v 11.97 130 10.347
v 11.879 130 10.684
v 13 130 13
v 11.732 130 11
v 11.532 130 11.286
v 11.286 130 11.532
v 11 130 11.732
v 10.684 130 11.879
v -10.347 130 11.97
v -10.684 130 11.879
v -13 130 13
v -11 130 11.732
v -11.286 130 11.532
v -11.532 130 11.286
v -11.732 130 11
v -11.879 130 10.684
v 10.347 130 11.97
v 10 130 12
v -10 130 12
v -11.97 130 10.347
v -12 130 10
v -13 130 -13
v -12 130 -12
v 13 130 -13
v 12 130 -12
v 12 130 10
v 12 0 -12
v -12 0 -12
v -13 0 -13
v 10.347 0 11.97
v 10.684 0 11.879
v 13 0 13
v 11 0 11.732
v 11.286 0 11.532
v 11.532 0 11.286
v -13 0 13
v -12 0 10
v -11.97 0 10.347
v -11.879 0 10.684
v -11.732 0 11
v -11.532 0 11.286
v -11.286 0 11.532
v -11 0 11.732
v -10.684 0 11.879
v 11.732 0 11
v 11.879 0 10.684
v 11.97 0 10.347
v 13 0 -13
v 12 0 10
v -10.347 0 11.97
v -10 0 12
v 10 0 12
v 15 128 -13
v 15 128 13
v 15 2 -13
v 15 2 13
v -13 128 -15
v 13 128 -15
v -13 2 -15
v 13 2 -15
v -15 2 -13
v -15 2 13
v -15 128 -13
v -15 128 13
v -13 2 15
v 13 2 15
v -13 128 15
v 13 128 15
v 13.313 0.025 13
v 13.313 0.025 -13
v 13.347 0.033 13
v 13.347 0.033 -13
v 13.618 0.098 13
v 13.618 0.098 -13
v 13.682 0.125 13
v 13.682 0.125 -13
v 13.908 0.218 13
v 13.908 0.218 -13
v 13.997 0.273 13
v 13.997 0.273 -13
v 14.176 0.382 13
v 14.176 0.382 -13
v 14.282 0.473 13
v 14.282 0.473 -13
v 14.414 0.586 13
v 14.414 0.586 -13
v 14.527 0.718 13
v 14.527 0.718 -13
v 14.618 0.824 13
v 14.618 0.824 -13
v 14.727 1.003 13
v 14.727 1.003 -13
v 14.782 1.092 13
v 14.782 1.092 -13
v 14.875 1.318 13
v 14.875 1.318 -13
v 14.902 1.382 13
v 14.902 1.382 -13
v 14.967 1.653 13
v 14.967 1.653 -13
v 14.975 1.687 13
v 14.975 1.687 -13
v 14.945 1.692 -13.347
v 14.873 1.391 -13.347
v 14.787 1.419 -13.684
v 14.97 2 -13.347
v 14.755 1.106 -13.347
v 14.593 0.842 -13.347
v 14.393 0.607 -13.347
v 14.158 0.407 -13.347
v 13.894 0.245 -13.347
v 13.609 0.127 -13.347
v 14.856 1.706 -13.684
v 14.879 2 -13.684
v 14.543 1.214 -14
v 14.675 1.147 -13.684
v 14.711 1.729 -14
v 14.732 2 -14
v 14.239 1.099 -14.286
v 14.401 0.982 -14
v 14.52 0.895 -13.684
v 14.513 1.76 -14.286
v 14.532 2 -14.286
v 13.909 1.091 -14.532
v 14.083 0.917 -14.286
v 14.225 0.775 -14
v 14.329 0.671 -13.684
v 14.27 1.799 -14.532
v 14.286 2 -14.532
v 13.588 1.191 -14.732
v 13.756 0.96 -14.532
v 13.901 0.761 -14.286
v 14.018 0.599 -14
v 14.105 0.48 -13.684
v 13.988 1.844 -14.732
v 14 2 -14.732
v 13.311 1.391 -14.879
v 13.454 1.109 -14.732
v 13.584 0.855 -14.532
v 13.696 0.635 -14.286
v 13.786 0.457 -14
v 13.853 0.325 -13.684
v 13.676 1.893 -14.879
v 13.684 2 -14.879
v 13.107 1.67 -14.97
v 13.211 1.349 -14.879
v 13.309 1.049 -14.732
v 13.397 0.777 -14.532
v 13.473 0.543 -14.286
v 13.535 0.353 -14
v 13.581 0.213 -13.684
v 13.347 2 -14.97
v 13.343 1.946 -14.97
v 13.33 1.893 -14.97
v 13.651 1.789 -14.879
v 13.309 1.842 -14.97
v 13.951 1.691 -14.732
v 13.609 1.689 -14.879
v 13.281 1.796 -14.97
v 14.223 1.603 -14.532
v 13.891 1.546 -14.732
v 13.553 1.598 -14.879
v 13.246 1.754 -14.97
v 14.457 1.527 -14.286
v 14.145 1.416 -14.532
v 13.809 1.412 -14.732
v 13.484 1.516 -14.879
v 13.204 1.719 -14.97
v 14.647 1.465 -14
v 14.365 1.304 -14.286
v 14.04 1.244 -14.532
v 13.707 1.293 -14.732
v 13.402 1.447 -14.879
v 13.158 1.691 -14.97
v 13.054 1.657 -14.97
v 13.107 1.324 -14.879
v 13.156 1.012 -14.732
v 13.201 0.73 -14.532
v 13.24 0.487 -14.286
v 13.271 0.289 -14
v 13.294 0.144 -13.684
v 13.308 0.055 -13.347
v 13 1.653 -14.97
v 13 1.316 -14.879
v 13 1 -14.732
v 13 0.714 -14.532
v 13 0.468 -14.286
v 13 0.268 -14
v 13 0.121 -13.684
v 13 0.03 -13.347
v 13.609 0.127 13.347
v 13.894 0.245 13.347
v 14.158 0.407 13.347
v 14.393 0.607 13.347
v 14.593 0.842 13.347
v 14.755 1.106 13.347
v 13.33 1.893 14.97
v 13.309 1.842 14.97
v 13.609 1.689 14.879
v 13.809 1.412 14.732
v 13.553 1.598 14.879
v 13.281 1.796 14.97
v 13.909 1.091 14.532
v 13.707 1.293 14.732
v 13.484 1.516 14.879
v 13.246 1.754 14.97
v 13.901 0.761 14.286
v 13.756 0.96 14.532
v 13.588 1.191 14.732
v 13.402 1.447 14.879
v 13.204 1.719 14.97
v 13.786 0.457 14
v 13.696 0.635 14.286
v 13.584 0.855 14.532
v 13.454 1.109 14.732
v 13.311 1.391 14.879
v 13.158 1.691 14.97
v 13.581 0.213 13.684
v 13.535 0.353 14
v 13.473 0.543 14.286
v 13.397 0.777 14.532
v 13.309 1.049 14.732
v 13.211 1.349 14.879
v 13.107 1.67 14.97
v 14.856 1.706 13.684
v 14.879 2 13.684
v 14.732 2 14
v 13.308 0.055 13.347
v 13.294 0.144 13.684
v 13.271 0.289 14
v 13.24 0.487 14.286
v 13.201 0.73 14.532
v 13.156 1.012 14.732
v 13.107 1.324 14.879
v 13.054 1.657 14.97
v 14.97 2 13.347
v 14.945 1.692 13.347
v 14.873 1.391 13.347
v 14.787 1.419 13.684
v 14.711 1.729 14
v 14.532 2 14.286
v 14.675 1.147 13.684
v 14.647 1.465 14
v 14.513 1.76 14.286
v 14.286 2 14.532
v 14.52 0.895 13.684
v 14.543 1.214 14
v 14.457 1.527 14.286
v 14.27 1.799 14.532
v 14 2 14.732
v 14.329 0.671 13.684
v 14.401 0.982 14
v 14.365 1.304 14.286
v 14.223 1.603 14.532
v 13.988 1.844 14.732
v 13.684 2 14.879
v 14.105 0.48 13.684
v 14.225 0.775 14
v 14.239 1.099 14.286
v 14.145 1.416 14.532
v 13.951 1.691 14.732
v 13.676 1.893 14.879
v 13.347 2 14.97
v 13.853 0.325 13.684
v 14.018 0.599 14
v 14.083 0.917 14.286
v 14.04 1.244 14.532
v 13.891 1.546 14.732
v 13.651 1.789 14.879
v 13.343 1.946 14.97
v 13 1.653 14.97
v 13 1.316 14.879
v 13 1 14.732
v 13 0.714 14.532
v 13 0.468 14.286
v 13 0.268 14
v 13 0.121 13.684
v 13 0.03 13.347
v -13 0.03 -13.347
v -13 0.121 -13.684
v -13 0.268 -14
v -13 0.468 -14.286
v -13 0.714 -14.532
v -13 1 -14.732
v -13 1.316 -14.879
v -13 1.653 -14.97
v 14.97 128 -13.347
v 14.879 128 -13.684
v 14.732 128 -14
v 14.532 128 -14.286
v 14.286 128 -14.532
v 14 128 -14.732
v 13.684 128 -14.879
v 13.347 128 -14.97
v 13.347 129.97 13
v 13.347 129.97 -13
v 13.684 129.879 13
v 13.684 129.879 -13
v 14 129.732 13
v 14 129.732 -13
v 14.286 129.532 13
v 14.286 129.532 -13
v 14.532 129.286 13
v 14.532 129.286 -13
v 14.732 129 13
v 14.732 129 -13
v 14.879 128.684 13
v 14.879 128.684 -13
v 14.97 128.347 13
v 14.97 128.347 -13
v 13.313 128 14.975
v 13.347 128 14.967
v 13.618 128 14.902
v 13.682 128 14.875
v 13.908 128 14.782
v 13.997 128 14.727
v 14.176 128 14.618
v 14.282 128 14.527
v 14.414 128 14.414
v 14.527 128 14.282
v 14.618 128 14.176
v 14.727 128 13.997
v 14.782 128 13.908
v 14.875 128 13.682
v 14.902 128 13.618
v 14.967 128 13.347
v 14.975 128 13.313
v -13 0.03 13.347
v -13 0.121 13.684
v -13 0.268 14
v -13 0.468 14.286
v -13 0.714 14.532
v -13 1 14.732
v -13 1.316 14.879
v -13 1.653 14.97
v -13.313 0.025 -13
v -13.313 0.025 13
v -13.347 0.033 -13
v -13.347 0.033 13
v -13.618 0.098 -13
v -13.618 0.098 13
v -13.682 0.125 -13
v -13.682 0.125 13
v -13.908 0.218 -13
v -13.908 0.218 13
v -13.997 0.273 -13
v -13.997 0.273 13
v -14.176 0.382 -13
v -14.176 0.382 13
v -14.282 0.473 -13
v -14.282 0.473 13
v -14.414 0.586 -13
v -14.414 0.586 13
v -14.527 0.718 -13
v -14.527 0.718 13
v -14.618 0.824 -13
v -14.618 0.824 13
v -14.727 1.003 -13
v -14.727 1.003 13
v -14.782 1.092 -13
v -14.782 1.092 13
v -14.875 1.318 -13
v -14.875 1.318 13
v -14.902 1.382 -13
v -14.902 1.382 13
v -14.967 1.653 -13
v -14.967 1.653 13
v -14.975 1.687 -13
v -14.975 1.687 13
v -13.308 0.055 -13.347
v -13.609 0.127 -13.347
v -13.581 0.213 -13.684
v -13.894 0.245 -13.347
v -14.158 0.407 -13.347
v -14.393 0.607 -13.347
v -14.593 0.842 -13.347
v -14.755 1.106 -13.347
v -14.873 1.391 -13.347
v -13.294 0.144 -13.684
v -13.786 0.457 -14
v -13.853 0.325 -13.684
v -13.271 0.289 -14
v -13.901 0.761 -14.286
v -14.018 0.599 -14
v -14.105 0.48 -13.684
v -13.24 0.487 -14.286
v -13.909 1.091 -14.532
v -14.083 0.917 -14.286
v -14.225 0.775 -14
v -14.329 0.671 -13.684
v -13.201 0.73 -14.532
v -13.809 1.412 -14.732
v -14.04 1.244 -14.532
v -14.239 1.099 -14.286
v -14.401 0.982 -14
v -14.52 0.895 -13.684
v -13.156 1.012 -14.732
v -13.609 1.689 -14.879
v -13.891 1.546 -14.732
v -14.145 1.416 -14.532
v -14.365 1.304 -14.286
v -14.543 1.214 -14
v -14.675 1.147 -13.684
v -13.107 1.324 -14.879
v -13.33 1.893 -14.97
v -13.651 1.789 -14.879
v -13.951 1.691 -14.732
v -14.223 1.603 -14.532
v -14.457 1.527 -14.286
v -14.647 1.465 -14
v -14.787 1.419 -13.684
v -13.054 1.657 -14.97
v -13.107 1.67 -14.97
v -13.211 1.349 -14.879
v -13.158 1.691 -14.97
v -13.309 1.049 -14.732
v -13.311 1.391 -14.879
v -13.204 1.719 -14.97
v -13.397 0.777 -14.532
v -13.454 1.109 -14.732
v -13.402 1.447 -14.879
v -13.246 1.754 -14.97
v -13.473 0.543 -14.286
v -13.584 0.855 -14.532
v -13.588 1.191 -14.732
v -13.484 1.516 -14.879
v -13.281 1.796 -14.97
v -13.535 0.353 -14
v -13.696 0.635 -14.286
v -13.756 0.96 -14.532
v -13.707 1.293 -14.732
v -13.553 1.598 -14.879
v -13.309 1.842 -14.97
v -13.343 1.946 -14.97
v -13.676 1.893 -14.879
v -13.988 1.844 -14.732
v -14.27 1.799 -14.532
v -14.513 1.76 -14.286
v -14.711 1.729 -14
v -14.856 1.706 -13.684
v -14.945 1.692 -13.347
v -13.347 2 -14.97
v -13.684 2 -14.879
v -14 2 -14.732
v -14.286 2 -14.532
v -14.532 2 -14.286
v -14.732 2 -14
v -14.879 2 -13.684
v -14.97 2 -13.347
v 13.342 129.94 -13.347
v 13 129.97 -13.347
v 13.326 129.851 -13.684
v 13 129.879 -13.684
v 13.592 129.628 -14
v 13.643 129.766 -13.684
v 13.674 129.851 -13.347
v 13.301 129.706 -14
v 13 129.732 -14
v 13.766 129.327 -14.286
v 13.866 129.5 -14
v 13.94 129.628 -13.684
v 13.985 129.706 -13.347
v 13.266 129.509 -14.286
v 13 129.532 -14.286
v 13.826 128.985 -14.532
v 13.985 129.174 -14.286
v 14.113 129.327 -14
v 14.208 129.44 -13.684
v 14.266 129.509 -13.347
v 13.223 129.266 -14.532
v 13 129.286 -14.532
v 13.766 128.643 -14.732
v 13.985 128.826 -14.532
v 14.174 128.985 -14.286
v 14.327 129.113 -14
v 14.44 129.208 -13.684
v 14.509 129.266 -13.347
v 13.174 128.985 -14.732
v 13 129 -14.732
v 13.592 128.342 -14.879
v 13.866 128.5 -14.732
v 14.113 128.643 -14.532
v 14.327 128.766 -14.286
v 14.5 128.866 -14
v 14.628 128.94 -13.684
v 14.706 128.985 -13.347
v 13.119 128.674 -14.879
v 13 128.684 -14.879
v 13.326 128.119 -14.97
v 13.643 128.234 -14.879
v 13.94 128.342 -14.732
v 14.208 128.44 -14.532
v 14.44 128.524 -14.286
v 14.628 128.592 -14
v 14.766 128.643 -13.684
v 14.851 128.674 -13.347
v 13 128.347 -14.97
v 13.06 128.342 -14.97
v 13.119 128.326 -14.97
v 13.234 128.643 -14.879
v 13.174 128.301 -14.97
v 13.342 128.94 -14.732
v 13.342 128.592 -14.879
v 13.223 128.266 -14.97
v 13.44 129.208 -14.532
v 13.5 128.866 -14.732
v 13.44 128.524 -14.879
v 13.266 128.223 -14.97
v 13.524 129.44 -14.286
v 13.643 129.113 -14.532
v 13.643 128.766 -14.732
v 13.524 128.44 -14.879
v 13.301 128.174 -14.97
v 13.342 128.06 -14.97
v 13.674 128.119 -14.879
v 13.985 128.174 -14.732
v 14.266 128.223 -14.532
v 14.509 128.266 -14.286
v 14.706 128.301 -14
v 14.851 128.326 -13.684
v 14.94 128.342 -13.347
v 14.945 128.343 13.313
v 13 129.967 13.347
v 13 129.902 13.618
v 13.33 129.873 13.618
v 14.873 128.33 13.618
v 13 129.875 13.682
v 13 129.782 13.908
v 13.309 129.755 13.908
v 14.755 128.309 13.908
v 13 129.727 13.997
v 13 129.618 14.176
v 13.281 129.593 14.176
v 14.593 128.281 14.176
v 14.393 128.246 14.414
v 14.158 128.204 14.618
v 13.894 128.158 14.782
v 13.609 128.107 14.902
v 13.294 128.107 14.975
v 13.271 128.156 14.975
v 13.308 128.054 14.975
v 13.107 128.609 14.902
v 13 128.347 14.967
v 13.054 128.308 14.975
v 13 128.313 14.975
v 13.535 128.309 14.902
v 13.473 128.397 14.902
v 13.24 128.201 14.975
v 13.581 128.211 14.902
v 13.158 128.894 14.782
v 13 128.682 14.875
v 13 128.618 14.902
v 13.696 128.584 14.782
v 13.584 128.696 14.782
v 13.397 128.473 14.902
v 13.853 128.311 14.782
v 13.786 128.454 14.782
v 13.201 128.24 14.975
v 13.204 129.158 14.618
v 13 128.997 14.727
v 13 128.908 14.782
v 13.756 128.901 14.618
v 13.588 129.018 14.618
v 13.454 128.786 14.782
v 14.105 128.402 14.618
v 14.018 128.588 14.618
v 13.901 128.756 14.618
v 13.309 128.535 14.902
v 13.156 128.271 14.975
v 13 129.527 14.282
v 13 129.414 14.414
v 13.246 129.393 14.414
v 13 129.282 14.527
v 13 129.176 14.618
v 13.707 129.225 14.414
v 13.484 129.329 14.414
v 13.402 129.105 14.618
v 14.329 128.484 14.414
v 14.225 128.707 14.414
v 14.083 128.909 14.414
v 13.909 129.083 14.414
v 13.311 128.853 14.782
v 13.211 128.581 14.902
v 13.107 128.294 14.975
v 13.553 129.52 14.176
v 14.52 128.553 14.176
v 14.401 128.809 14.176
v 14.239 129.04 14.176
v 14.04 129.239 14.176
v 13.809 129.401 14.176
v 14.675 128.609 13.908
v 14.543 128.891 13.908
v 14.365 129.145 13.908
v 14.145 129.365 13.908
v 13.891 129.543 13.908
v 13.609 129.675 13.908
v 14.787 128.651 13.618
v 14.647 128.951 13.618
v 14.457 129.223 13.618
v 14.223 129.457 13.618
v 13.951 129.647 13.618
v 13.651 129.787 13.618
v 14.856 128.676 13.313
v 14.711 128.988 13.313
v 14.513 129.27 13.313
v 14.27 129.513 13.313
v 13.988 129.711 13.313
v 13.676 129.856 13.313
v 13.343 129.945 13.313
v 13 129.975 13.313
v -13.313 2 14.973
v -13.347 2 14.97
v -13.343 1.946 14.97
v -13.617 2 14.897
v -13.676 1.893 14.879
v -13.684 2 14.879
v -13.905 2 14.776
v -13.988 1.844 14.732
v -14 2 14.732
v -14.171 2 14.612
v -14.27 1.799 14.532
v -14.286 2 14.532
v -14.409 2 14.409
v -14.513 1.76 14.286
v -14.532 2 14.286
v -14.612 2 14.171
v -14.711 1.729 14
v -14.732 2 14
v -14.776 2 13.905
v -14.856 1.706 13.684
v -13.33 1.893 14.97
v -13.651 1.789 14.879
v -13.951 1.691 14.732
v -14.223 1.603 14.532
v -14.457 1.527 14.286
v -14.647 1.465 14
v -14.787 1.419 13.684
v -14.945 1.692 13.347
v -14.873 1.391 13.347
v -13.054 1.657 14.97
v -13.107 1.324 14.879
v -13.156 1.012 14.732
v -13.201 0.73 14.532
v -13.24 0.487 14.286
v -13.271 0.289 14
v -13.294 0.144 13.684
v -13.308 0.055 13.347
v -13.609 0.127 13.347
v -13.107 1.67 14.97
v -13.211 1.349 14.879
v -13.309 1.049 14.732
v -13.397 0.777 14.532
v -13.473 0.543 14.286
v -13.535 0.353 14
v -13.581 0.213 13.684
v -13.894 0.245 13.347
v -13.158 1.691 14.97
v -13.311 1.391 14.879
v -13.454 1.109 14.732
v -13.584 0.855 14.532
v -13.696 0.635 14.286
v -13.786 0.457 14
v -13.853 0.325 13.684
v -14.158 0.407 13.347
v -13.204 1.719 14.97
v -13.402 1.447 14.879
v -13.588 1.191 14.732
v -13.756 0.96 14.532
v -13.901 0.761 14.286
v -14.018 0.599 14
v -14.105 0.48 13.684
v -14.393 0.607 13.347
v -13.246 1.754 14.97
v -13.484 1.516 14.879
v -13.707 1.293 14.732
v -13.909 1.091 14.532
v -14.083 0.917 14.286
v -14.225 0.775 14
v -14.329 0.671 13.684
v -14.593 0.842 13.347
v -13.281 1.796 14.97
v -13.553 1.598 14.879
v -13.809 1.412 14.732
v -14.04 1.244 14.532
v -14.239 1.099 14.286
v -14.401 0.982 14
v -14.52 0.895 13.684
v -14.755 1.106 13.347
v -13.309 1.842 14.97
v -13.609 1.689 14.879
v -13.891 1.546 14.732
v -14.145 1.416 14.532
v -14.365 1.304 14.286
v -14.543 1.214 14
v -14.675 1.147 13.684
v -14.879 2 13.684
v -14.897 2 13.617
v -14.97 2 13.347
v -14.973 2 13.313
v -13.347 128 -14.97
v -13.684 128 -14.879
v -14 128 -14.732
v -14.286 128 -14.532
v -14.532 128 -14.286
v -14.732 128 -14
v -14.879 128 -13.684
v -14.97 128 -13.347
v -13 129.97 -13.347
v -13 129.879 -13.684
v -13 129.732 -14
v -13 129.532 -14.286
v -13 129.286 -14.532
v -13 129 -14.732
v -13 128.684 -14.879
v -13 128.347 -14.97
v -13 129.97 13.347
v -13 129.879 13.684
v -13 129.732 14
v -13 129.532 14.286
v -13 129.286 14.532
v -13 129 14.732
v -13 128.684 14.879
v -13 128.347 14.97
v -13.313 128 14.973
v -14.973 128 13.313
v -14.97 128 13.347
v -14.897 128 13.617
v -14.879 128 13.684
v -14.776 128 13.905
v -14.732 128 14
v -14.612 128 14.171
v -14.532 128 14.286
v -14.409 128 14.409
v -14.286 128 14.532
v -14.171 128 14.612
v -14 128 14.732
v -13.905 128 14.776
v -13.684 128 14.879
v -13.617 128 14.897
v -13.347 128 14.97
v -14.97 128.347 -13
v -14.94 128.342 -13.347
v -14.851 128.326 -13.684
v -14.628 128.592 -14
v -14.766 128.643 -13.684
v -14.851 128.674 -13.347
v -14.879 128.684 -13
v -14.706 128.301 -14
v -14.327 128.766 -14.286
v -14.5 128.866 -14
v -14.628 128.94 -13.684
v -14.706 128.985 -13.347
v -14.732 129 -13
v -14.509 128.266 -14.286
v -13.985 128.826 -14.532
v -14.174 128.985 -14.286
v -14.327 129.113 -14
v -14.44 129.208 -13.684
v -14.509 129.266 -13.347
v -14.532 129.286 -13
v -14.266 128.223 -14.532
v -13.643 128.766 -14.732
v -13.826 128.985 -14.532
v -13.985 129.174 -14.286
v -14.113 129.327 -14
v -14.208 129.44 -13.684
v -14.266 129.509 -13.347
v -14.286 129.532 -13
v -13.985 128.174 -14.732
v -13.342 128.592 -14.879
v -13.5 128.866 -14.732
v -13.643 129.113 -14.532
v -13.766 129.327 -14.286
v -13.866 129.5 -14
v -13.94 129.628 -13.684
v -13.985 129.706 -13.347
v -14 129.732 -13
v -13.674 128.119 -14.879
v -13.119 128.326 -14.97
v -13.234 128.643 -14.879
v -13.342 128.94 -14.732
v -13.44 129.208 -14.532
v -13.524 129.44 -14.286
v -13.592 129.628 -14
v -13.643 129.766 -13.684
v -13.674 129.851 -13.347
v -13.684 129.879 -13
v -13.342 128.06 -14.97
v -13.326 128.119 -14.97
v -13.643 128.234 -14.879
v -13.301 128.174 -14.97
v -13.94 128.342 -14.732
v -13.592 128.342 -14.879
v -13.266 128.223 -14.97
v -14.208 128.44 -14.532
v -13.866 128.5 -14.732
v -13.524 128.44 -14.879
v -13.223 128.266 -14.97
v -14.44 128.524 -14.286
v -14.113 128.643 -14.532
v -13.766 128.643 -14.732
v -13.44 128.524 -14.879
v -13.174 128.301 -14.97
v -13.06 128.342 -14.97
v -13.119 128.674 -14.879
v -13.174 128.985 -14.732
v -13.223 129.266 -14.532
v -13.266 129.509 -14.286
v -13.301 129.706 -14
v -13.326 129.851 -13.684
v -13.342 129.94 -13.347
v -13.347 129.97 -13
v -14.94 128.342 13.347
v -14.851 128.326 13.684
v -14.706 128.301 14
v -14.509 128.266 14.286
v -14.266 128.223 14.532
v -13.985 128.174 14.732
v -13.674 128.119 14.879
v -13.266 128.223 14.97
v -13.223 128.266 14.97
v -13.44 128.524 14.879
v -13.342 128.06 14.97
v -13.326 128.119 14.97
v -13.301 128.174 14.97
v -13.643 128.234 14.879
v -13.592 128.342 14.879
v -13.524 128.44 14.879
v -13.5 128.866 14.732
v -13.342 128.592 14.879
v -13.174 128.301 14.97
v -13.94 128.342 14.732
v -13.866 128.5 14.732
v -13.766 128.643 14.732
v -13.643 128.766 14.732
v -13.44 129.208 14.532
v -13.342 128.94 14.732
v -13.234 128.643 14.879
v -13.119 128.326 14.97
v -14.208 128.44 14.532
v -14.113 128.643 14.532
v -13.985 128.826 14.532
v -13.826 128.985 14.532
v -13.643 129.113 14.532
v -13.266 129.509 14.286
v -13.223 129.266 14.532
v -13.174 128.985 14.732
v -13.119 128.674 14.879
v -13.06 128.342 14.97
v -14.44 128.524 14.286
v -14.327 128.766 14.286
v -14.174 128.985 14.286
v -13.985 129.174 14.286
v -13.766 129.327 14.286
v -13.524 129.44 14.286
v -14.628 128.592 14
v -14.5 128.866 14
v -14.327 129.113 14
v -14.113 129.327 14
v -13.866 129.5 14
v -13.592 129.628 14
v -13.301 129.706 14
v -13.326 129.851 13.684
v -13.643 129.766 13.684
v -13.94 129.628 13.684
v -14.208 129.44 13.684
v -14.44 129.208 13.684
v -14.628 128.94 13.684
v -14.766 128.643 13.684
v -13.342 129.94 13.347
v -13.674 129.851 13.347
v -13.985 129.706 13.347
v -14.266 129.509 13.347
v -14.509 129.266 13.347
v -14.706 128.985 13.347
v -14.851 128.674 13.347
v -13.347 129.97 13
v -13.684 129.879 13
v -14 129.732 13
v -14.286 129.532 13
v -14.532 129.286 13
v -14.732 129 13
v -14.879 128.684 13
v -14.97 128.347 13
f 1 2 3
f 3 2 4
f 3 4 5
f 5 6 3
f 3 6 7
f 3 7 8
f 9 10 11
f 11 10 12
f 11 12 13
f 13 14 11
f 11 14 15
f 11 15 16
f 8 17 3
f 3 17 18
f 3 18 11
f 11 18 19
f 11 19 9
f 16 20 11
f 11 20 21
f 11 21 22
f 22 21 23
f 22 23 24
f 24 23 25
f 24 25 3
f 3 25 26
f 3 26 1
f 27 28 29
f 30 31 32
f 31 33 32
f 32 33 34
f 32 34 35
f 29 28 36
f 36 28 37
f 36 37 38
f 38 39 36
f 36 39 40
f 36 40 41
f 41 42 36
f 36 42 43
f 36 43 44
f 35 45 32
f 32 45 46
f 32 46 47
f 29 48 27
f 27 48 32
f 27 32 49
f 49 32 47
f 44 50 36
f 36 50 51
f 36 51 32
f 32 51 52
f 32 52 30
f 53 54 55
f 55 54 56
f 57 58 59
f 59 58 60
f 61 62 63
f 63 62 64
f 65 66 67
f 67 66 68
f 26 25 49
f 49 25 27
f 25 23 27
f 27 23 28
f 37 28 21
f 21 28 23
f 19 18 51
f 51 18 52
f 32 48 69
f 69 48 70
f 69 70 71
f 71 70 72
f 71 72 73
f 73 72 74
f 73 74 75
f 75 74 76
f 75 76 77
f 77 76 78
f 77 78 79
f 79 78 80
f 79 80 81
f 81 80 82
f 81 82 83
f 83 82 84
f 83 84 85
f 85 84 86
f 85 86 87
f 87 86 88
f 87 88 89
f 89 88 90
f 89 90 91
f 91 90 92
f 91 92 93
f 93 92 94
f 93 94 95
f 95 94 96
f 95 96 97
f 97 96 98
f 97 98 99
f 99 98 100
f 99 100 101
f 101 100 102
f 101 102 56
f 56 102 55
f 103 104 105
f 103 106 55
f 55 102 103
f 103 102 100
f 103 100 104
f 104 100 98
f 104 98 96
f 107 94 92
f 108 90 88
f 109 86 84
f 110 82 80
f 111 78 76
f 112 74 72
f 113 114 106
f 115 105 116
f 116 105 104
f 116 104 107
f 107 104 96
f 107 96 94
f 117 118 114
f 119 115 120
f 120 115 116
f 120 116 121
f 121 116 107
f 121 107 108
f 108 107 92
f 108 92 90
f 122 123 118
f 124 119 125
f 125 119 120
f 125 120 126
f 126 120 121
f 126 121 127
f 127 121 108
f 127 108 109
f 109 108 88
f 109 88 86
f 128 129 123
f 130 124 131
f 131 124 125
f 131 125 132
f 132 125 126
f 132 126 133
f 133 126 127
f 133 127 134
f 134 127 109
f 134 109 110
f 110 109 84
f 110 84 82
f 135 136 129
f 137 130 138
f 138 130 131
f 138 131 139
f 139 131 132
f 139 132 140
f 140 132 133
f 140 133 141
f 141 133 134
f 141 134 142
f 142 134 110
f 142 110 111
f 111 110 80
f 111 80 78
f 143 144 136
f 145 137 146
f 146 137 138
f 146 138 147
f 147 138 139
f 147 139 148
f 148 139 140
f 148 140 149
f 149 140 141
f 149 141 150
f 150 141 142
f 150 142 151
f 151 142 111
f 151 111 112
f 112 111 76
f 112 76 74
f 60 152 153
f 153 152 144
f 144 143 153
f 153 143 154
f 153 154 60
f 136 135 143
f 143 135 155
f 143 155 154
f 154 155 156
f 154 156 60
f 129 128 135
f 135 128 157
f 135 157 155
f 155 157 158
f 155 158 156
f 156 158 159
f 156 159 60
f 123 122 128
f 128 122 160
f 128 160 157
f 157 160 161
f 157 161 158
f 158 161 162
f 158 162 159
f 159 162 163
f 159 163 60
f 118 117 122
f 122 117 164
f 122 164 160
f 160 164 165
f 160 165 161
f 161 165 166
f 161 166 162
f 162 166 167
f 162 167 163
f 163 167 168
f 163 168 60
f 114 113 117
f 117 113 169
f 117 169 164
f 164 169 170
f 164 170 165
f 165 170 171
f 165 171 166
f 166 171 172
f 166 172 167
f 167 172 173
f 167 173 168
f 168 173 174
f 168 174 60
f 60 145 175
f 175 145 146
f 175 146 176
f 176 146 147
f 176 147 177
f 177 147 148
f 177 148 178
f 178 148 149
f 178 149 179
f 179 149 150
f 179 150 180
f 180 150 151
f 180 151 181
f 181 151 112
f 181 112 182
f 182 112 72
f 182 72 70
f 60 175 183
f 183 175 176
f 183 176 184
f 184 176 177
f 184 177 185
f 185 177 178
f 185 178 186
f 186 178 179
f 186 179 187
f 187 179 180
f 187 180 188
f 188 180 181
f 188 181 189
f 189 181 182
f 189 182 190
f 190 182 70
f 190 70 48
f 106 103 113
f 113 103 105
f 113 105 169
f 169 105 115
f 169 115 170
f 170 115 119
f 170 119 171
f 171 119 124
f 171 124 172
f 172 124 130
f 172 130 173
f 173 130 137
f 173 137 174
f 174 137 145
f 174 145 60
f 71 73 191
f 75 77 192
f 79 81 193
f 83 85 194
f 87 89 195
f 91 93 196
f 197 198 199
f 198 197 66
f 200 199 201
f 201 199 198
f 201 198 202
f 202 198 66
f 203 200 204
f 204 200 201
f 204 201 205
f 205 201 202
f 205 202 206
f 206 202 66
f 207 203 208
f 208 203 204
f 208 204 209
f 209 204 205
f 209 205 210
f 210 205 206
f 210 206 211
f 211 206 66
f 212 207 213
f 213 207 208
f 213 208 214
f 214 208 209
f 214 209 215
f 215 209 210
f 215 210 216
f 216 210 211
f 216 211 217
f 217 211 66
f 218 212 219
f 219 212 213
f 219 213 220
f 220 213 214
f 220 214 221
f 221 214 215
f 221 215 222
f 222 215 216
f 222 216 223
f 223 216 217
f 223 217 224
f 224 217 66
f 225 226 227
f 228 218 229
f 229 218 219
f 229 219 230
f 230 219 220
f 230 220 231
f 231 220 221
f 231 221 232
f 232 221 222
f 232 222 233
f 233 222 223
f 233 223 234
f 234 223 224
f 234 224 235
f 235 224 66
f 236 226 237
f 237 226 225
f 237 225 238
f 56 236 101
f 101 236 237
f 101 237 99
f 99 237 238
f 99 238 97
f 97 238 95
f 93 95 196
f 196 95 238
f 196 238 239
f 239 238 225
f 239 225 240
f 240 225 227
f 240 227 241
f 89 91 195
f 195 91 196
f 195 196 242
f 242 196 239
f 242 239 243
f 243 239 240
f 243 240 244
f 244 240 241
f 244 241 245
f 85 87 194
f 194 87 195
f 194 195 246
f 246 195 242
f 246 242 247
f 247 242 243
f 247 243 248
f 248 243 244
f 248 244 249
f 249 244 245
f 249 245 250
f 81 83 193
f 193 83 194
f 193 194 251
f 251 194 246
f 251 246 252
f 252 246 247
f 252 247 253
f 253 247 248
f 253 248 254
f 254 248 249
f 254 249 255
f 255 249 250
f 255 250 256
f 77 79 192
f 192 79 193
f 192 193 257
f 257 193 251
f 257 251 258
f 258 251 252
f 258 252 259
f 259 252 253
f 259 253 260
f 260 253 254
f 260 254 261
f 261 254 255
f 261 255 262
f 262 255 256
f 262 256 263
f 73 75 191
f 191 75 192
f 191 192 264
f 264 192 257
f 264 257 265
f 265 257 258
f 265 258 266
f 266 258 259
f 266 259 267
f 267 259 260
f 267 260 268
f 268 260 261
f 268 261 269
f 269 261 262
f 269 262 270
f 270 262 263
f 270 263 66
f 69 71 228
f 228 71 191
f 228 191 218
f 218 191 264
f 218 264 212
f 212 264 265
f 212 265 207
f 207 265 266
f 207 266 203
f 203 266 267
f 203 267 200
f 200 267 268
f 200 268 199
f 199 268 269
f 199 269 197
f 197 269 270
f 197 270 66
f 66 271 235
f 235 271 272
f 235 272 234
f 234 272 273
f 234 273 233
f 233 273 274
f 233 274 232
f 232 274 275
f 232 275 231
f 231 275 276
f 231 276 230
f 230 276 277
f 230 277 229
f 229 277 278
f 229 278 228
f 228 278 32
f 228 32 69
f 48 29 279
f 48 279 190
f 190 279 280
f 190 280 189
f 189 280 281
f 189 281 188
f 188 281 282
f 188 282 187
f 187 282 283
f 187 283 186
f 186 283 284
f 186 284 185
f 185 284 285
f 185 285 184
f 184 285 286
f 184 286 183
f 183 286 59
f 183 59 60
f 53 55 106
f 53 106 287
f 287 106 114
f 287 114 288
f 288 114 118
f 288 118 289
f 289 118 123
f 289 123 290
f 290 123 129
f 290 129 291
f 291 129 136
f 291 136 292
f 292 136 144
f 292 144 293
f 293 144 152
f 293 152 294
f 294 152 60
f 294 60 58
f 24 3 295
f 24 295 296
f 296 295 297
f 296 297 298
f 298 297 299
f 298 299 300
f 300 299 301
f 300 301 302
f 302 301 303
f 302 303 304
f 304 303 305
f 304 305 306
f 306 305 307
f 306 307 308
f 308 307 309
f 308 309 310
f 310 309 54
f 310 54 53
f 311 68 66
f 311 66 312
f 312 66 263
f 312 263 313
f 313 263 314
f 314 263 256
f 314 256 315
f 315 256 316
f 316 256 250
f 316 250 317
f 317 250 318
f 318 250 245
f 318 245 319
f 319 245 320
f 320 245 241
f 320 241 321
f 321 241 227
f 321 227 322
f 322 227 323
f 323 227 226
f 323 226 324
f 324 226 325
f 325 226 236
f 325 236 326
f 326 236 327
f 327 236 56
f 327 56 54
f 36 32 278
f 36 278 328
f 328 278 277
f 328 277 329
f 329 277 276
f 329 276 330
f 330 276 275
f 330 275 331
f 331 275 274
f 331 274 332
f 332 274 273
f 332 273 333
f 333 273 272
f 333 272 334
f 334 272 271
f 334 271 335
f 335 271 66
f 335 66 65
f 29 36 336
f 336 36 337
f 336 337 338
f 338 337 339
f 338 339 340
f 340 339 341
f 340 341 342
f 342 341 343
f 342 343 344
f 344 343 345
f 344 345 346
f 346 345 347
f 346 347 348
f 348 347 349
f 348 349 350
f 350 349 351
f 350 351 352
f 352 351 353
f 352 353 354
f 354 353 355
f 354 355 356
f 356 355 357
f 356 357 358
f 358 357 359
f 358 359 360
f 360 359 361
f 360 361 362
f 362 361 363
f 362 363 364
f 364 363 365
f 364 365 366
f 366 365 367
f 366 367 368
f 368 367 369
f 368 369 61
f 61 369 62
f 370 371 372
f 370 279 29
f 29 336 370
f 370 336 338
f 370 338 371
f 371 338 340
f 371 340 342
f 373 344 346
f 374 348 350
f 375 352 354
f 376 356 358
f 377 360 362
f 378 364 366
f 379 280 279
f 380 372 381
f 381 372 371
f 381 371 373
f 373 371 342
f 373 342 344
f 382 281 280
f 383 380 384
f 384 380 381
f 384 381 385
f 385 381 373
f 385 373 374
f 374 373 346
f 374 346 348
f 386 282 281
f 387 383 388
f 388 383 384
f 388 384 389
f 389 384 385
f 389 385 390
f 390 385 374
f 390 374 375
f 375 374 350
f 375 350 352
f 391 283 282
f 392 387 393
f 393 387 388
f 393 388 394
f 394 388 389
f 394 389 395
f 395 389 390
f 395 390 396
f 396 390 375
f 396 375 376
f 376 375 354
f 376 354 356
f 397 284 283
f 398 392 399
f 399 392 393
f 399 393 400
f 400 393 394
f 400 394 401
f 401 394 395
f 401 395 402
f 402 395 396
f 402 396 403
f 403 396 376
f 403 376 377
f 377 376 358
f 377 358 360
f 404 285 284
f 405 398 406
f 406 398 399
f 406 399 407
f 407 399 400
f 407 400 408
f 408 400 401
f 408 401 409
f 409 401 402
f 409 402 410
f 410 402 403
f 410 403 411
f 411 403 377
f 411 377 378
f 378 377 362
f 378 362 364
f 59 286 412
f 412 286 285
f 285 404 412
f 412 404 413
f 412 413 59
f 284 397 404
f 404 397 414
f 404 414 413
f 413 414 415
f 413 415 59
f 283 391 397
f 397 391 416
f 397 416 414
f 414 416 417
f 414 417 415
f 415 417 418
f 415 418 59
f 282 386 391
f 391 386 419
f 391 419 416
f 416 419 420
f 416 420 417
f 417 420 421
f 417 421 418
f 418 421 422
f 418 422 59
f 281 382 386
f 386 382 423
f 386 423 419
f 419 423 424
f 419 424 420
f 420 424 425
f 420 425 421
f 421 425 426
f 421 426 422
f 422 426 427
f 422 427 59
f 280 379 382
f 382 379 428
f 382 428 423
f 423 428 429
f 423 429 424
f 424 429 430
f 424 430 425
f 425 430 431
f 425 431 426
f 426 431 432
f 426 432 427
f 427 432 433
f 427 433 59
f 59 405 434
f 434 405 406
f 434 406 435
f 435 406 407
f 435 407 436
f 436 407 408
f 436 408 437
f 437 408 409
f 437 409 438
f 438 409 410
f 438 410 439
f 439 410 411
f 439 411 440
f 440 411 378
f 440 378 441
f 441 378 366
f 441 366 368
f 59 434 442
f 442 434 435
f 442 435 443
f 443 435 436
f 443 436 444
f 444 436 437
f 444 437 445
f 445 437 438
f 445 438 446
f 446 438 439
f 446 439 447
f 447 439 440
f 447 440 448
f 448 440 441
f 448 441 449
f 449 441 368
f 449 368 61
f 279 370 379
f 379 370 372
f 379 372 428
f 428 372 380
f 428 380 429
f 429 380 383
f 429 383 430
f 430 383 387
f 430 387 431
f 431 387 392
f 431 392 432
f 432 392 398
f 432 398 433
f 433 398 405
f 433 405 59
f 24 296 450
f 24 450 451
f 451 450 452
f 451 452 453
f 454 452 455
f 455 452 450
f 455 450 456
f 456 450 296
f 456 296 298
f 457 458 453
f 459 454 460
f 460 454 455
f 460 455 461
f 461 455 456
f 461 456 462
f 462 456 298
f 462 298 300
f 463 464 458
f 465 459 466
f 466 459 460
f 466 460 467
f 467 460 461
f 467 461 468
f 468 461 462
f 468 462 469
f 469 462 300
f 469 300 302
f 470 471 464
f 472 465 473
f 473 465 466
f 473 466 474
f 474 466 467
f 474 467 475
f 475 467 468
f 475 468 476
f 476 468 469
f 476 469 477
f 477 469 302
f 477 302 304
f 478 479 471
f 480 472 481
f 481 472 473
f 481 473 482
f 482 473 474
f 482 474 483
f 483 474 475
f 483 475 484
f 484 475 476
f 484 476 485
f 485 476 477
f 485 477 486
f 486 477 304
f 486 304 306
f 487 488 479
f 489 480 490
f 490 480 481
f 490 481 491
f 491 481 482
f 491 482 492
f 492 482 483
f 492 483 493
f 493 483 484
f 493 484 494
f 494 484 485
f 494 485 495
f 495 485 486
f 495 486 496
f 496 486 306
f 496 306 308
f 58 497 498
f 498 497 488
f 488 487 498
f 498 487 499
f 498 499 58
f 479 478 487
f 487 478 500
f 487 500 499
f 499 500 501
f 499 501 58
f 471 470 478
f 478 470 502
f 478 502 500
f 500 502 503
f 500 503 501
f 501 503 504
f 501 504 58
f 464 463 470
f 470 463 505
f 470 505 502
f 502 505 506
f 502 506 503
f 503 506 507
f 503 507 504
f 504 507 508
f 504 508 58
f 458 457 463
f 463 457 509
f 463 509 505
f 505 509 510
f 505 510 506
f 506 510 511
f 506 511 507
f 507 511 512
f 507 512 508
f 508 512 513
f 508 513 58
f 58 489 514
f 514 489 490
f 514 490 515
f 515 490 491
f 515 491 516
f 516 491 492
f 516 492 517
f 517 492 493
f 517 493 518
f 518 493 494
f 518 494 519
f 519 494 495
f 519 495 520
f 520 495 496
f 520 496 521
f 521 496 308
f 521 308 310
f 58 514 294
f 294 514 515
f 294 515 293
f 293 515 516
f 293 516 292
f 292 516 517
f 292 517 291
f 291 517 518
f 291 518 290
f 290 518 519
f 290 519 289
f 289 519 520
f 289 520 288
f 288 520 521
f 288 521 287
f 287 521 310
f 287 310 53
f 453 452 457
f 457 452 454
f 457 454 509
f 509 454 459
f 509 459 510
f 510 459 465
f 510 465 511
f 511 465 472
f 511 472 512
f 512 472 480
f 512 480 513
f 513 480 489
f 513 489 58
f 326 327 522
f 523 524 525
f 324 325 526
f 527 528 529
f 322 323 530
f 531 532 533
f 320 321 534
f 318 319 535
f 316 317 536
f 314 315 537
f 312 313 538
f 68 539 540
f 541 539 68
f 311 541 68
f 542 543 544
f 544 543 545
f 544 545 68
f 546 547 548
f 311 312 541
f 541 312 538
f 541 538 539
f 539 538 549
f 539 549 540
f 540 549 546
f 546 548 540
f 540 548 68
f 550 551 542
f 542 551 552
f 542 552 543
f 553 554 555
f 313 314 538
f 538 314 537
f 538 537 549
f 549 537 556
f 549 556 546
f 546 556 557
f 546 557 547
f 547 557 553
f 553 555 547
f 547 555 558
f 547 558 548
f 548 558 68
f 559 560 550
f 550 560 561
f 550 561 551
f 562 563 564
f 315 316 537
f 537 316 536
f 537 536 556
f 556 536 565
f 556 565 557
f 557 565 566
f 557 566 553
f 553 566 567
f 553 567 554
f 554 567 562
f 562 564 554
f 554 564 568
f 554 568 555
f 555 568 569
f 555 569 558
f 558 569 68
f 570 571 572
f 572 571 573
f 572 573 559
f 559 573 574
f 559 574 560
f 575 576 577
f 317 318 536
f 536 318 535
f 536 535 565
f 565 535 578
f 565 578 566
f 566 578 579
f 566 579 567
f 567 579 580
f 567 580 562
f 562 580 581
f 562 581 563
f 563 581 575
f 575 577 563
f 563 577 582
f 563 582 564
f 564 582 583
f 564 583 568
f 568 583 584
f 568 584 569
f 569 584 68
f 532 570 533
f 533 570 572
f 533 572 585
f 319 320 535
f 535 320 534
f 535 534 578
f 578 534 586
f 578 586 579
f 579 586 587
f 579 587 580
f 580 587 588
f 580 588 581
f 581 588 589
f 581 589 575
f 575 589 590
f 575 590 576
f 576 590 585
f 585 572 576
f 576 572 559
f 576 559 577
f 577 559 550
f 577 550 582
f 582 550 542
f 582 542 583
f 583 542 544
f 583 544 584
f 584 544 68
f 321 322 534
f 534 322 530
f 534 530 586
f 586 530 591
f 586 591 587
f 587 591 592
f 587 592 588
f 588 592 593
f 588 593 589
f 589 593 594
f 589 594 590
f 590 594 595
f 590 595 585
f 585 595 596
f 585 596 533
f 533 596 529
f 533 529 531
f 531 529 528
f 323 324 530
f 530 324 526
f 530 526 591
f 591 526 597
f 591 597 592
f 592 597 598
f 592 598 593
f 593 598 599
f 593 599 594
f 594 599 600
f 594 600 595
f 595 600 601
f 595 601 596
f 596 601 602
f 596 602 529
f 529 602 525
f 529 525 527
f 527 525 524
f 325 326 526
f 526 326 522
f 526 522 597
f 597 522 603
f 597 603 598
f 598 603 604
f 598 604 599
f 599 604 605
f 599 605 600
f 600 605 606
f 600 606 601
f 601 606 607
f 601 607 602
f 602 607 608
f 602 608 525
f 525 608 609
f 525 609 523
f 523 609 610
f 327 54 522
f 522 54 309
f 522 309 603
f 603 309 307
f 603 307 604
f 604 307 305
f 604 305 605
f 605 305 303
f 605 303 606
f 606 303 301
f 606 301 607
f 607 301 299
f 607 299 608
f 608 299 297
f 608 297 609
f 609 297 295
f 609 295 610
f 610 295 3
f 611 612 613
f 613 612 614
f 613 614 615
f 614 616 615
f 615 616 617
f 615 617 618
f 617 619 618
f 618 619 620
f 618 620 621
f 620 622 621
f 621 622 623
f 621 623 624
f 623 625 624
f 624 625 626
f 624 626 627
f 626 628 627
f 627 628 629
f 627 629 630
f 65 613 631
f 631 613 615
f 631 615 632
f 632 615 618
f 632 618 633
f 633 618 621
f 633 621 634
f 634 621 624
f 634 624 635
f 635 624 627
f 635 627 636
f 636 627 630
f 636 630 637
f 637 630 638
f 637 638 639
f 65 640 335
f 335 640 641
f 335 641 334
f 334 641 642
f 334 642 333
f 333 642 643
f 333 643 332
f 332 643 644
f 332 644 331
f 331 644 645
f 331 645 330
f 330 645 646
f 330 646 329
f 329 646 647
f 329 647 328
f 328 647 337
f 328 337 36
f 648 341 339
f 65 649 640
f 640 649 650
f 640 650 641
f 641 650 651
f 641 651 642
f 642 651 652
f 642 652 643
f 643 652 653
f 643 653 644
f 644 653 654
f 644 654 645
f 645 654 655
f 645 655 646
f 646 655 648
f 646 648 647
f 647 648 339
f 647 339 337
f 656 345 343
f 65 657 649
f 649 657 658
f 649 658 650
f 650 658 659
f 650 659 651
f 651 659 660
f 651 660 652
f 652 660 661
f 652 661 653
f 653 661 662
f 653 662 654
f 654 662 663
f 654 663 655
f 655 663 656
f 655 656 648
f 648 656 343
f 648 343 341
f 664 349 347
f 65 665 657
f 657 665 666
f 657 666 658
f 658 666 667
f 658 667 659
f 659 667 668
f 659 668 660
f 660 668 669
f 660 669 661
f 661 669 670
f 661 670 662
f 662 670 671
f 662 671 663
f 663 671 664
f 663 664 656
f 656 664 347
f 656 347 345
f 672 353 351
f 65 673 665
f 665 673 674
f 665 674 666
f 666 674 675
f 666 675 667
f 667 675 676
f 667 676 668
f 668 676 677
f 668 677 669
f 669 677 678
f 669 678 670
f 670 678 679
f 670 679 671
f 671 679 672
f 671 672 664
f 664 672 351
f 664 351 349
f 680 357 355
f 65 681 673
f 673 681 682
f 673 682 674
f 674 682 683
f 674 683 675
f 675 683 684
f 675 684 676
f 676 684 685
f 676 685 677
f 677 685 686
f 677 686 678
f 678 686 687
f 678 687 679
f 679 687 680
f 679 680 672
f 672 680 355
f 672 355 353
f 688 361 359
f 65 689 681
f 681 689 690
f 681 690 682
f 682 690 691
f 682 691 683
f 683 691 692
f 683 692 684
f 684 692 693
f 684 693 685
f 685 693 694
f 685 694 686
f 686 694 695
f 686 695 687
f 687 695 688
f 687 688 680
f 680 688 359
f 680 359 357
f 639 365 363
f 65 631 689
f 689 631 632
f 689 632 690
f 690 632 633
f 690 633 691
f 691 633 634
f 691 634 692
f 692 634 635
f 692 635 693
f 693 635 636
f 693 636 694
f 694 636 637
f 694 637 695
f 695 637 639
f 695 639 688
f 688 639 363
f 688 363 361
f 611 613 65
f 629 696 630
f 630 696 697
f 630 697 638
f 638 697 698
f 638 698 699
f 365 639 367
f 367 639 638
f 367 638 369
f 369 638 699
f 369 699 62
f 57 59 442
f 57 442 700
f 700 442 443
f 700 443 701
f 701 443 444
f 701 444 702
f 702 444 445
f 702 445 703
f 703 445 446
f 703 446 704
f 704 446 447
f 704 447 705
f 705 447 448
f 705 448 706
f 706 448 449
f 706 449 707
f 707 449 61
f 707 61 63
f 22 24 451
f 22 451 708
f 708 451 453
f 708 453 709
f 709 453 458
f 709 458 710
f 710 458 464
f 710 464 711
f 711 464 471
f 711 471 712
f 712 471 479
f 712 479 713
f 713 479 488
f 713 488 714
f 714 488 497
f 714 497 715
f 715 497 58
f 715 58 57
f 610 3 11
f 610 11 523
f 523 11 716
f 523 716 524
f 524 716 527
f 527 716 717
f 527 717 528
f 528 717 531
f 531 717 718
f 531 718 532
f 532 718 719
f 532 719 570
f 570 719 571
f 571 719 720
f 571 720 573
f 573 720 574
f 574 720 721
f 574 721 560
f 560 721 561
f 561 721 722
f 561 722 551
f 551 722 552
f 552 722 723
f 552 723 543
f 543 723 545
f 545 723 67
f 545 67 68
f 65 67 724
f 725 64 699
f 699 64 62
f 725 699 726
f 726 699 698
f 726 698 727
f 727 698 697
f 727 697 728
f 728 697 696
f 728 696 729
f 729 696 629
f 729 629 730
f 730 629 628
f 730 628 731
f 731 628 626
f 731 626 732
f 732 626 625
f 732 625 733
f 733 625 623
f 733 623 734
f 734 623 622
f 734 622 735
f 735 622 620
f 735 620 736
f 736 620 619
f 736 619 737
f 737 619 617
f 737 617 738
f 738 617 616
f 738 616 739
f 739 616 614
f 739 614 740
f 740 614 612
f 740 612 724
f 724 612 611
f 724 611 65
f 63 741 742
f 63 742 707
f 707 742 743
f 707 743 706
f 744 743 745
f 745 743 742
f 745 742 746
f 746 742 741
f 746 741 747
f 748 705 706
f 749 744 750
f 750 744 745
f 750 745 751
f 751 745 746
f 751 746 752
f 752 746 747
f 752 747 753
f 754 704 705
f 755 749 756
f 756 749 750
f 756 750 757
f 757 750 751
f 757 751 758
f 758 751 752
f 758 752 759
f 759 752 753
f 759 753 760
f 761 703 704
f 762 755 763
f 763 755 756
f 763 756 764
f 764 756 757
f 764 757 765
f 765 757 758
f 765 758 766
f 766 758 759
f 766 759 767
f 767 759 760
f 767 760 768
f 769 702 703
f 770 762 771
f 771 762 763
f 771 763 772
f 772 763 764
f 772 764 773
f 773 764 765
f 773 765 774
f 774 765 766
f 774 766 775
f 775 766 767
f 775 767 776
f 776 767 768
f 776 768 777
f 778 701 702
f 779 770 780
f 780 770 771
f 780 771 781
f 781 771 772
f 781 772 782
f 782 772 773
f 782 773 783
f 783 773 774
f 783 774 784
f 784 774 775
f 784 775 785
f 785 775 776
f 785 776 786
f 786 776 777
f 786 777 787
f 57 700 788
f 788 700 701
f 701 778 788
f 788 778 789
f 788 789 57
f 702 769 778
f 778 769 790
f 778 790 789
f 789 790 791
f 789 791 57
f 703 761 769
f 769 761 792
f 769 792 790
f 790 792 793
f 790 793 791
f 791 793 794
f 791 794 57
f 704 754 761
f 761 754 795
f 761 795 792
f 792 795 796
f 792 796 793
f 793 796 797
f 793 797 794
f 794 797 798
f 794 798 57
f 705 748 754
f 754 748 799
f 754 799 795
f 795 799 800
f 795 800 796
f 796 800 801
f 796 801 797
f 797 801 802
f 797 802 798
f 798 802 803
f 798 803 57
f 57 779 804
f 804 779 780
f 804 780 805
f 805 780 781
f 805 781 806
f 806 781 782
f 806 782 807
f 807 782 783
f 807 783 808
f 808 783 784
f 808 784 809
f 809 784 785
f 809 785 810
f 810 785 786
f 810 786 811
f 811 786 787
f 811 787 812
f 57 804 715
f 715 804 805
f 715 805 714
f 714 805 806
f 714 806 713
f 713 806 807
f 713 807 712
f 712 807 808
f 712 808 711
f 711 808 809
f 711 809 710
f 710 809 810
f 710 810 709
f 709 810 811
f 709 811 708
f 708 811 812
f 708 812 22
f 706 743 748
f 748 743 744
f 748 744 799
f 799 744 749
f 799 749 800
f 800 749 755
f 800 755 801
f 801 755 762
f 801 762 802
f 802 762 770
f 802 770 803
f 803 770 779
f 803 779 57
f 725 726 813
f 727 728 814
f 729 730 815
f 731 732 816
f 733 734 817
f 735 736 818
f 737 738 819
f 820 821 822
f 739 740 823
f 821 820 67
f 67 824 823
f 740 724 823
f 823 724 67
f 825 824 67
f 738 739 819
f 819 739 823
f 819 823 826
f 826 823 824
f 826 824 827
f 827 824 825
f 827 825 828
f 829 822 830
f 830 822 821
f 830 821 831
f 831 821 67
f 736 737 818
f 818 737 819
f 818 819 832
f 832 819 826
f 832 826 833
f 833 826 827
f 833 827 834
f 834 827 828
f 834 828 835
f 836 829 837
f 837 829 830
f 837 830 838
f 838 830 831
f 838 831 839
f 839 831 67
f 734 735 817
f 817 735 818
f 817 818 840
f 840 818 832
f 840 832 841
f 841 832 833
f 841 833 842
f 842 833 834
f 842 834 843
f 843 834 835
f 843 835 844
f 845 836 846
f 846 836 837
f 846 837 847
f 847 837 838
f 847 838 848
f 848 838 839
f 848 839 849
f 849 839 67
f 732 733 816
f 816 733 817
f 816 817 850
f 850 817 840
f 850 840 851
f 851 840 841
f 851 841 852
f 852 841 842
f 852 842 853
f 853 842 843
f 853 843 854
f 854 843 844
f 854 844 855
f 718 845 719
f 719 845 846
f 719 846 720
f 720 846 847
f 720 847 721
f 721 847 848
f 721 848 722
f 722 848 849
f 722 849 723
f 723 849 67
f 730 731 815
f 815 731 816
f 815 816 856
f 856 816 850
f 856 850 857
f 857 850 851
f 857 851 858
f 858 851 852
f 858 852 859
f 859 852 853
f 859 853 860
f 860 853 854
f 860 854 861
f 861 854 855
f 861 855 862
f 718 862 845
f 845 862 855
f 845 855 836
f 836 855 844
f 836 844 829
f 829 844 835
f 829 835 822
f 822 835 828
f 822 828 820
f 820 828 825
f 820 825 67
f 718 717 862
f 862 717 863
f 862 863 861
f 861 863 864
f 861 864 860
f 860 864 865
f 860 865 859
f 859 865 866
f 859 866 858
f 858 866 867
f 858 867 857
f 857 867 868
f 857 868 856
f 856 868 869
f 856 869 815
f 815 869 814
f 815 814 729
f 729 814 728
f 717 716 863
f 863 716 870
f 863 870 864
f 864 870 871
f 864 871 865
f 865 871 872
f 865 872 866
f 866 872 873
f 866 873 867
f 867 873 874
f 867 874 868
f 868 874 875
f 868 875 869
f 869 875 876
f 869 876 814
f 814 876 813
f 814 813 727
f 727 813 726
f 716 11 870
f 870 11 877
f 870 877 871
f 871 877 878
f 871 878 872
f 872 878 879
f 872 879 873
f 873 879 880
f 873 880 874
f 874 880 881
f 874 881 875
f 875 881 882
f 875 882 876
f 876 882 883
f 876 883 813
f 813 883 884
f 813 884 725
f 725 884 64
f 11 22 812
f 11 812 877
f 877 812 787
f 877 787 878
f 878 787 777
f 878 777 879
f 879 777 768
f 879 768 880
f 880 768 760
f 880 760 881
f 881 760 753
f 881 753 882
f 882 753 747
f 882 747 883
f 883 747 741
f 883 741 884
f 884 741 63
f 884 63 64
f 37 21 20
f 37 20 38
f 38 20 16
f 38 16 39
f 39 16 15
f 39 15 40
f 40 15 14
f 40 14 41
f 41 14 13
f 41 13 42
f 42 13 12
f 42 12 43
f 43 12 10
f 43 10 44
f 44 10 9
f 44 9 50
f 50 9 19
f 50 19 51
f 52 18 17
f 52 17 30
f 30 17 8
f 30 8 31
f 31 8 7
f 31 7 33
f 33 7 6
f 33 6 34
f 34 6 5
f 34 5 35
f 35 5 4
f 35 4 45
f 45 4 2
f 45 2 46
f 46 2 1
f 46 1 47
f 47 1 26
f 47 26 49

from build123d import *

# Parameters (mm, degrees)
CROQUIS1_W              = 30
CROQUIS1_H              = 30
CROQUIS1_W_2            = 24
CROQUIS1_H_2            = 24
SALIENTE_EXTRUIR1_DEPTH = 130
REDONDEO2_R             = 2


with BuildPart() as part:
    # Croquis1 → Saliente-Extruir1 (new body)
    with BuildSketch(Plane(origin=(0, 0, 0), x_dir=(1, 0, 0), z_dir=(0, 1, 0))):
        Rectangle(CROQUIS1_W, CROQUIS1_H)
        Rectangle(CROQUIS1_W_2, CROQUIS1_H_2, mode=Mode.SUBTRACT)
    extrude(amount=SALIENTE_EXTRUIR1_DEPTH)

    # Redondeo2
    redondeo2_edges = [part.edges().sort_by_distance(p)[0] for p in [
        (-15, 130, 0),
        (0, 130, 15),
        (12, 65, 12),
        (-12, 65, 12),
        (15, 130, 0),
        (0, 0, 15),
        (-15, 0, 0),
        (0, 0, -15),
        (15, 0, 0),
        (0, 130, -15),
        (15, 65, 15),
        (-15, 65, 15),
        (-15, 65, -15),
        (15, 65, -15),
    ]]
    fillet(redondeo2_edges, radius=REDONDEO2_R)


solid = part.part
